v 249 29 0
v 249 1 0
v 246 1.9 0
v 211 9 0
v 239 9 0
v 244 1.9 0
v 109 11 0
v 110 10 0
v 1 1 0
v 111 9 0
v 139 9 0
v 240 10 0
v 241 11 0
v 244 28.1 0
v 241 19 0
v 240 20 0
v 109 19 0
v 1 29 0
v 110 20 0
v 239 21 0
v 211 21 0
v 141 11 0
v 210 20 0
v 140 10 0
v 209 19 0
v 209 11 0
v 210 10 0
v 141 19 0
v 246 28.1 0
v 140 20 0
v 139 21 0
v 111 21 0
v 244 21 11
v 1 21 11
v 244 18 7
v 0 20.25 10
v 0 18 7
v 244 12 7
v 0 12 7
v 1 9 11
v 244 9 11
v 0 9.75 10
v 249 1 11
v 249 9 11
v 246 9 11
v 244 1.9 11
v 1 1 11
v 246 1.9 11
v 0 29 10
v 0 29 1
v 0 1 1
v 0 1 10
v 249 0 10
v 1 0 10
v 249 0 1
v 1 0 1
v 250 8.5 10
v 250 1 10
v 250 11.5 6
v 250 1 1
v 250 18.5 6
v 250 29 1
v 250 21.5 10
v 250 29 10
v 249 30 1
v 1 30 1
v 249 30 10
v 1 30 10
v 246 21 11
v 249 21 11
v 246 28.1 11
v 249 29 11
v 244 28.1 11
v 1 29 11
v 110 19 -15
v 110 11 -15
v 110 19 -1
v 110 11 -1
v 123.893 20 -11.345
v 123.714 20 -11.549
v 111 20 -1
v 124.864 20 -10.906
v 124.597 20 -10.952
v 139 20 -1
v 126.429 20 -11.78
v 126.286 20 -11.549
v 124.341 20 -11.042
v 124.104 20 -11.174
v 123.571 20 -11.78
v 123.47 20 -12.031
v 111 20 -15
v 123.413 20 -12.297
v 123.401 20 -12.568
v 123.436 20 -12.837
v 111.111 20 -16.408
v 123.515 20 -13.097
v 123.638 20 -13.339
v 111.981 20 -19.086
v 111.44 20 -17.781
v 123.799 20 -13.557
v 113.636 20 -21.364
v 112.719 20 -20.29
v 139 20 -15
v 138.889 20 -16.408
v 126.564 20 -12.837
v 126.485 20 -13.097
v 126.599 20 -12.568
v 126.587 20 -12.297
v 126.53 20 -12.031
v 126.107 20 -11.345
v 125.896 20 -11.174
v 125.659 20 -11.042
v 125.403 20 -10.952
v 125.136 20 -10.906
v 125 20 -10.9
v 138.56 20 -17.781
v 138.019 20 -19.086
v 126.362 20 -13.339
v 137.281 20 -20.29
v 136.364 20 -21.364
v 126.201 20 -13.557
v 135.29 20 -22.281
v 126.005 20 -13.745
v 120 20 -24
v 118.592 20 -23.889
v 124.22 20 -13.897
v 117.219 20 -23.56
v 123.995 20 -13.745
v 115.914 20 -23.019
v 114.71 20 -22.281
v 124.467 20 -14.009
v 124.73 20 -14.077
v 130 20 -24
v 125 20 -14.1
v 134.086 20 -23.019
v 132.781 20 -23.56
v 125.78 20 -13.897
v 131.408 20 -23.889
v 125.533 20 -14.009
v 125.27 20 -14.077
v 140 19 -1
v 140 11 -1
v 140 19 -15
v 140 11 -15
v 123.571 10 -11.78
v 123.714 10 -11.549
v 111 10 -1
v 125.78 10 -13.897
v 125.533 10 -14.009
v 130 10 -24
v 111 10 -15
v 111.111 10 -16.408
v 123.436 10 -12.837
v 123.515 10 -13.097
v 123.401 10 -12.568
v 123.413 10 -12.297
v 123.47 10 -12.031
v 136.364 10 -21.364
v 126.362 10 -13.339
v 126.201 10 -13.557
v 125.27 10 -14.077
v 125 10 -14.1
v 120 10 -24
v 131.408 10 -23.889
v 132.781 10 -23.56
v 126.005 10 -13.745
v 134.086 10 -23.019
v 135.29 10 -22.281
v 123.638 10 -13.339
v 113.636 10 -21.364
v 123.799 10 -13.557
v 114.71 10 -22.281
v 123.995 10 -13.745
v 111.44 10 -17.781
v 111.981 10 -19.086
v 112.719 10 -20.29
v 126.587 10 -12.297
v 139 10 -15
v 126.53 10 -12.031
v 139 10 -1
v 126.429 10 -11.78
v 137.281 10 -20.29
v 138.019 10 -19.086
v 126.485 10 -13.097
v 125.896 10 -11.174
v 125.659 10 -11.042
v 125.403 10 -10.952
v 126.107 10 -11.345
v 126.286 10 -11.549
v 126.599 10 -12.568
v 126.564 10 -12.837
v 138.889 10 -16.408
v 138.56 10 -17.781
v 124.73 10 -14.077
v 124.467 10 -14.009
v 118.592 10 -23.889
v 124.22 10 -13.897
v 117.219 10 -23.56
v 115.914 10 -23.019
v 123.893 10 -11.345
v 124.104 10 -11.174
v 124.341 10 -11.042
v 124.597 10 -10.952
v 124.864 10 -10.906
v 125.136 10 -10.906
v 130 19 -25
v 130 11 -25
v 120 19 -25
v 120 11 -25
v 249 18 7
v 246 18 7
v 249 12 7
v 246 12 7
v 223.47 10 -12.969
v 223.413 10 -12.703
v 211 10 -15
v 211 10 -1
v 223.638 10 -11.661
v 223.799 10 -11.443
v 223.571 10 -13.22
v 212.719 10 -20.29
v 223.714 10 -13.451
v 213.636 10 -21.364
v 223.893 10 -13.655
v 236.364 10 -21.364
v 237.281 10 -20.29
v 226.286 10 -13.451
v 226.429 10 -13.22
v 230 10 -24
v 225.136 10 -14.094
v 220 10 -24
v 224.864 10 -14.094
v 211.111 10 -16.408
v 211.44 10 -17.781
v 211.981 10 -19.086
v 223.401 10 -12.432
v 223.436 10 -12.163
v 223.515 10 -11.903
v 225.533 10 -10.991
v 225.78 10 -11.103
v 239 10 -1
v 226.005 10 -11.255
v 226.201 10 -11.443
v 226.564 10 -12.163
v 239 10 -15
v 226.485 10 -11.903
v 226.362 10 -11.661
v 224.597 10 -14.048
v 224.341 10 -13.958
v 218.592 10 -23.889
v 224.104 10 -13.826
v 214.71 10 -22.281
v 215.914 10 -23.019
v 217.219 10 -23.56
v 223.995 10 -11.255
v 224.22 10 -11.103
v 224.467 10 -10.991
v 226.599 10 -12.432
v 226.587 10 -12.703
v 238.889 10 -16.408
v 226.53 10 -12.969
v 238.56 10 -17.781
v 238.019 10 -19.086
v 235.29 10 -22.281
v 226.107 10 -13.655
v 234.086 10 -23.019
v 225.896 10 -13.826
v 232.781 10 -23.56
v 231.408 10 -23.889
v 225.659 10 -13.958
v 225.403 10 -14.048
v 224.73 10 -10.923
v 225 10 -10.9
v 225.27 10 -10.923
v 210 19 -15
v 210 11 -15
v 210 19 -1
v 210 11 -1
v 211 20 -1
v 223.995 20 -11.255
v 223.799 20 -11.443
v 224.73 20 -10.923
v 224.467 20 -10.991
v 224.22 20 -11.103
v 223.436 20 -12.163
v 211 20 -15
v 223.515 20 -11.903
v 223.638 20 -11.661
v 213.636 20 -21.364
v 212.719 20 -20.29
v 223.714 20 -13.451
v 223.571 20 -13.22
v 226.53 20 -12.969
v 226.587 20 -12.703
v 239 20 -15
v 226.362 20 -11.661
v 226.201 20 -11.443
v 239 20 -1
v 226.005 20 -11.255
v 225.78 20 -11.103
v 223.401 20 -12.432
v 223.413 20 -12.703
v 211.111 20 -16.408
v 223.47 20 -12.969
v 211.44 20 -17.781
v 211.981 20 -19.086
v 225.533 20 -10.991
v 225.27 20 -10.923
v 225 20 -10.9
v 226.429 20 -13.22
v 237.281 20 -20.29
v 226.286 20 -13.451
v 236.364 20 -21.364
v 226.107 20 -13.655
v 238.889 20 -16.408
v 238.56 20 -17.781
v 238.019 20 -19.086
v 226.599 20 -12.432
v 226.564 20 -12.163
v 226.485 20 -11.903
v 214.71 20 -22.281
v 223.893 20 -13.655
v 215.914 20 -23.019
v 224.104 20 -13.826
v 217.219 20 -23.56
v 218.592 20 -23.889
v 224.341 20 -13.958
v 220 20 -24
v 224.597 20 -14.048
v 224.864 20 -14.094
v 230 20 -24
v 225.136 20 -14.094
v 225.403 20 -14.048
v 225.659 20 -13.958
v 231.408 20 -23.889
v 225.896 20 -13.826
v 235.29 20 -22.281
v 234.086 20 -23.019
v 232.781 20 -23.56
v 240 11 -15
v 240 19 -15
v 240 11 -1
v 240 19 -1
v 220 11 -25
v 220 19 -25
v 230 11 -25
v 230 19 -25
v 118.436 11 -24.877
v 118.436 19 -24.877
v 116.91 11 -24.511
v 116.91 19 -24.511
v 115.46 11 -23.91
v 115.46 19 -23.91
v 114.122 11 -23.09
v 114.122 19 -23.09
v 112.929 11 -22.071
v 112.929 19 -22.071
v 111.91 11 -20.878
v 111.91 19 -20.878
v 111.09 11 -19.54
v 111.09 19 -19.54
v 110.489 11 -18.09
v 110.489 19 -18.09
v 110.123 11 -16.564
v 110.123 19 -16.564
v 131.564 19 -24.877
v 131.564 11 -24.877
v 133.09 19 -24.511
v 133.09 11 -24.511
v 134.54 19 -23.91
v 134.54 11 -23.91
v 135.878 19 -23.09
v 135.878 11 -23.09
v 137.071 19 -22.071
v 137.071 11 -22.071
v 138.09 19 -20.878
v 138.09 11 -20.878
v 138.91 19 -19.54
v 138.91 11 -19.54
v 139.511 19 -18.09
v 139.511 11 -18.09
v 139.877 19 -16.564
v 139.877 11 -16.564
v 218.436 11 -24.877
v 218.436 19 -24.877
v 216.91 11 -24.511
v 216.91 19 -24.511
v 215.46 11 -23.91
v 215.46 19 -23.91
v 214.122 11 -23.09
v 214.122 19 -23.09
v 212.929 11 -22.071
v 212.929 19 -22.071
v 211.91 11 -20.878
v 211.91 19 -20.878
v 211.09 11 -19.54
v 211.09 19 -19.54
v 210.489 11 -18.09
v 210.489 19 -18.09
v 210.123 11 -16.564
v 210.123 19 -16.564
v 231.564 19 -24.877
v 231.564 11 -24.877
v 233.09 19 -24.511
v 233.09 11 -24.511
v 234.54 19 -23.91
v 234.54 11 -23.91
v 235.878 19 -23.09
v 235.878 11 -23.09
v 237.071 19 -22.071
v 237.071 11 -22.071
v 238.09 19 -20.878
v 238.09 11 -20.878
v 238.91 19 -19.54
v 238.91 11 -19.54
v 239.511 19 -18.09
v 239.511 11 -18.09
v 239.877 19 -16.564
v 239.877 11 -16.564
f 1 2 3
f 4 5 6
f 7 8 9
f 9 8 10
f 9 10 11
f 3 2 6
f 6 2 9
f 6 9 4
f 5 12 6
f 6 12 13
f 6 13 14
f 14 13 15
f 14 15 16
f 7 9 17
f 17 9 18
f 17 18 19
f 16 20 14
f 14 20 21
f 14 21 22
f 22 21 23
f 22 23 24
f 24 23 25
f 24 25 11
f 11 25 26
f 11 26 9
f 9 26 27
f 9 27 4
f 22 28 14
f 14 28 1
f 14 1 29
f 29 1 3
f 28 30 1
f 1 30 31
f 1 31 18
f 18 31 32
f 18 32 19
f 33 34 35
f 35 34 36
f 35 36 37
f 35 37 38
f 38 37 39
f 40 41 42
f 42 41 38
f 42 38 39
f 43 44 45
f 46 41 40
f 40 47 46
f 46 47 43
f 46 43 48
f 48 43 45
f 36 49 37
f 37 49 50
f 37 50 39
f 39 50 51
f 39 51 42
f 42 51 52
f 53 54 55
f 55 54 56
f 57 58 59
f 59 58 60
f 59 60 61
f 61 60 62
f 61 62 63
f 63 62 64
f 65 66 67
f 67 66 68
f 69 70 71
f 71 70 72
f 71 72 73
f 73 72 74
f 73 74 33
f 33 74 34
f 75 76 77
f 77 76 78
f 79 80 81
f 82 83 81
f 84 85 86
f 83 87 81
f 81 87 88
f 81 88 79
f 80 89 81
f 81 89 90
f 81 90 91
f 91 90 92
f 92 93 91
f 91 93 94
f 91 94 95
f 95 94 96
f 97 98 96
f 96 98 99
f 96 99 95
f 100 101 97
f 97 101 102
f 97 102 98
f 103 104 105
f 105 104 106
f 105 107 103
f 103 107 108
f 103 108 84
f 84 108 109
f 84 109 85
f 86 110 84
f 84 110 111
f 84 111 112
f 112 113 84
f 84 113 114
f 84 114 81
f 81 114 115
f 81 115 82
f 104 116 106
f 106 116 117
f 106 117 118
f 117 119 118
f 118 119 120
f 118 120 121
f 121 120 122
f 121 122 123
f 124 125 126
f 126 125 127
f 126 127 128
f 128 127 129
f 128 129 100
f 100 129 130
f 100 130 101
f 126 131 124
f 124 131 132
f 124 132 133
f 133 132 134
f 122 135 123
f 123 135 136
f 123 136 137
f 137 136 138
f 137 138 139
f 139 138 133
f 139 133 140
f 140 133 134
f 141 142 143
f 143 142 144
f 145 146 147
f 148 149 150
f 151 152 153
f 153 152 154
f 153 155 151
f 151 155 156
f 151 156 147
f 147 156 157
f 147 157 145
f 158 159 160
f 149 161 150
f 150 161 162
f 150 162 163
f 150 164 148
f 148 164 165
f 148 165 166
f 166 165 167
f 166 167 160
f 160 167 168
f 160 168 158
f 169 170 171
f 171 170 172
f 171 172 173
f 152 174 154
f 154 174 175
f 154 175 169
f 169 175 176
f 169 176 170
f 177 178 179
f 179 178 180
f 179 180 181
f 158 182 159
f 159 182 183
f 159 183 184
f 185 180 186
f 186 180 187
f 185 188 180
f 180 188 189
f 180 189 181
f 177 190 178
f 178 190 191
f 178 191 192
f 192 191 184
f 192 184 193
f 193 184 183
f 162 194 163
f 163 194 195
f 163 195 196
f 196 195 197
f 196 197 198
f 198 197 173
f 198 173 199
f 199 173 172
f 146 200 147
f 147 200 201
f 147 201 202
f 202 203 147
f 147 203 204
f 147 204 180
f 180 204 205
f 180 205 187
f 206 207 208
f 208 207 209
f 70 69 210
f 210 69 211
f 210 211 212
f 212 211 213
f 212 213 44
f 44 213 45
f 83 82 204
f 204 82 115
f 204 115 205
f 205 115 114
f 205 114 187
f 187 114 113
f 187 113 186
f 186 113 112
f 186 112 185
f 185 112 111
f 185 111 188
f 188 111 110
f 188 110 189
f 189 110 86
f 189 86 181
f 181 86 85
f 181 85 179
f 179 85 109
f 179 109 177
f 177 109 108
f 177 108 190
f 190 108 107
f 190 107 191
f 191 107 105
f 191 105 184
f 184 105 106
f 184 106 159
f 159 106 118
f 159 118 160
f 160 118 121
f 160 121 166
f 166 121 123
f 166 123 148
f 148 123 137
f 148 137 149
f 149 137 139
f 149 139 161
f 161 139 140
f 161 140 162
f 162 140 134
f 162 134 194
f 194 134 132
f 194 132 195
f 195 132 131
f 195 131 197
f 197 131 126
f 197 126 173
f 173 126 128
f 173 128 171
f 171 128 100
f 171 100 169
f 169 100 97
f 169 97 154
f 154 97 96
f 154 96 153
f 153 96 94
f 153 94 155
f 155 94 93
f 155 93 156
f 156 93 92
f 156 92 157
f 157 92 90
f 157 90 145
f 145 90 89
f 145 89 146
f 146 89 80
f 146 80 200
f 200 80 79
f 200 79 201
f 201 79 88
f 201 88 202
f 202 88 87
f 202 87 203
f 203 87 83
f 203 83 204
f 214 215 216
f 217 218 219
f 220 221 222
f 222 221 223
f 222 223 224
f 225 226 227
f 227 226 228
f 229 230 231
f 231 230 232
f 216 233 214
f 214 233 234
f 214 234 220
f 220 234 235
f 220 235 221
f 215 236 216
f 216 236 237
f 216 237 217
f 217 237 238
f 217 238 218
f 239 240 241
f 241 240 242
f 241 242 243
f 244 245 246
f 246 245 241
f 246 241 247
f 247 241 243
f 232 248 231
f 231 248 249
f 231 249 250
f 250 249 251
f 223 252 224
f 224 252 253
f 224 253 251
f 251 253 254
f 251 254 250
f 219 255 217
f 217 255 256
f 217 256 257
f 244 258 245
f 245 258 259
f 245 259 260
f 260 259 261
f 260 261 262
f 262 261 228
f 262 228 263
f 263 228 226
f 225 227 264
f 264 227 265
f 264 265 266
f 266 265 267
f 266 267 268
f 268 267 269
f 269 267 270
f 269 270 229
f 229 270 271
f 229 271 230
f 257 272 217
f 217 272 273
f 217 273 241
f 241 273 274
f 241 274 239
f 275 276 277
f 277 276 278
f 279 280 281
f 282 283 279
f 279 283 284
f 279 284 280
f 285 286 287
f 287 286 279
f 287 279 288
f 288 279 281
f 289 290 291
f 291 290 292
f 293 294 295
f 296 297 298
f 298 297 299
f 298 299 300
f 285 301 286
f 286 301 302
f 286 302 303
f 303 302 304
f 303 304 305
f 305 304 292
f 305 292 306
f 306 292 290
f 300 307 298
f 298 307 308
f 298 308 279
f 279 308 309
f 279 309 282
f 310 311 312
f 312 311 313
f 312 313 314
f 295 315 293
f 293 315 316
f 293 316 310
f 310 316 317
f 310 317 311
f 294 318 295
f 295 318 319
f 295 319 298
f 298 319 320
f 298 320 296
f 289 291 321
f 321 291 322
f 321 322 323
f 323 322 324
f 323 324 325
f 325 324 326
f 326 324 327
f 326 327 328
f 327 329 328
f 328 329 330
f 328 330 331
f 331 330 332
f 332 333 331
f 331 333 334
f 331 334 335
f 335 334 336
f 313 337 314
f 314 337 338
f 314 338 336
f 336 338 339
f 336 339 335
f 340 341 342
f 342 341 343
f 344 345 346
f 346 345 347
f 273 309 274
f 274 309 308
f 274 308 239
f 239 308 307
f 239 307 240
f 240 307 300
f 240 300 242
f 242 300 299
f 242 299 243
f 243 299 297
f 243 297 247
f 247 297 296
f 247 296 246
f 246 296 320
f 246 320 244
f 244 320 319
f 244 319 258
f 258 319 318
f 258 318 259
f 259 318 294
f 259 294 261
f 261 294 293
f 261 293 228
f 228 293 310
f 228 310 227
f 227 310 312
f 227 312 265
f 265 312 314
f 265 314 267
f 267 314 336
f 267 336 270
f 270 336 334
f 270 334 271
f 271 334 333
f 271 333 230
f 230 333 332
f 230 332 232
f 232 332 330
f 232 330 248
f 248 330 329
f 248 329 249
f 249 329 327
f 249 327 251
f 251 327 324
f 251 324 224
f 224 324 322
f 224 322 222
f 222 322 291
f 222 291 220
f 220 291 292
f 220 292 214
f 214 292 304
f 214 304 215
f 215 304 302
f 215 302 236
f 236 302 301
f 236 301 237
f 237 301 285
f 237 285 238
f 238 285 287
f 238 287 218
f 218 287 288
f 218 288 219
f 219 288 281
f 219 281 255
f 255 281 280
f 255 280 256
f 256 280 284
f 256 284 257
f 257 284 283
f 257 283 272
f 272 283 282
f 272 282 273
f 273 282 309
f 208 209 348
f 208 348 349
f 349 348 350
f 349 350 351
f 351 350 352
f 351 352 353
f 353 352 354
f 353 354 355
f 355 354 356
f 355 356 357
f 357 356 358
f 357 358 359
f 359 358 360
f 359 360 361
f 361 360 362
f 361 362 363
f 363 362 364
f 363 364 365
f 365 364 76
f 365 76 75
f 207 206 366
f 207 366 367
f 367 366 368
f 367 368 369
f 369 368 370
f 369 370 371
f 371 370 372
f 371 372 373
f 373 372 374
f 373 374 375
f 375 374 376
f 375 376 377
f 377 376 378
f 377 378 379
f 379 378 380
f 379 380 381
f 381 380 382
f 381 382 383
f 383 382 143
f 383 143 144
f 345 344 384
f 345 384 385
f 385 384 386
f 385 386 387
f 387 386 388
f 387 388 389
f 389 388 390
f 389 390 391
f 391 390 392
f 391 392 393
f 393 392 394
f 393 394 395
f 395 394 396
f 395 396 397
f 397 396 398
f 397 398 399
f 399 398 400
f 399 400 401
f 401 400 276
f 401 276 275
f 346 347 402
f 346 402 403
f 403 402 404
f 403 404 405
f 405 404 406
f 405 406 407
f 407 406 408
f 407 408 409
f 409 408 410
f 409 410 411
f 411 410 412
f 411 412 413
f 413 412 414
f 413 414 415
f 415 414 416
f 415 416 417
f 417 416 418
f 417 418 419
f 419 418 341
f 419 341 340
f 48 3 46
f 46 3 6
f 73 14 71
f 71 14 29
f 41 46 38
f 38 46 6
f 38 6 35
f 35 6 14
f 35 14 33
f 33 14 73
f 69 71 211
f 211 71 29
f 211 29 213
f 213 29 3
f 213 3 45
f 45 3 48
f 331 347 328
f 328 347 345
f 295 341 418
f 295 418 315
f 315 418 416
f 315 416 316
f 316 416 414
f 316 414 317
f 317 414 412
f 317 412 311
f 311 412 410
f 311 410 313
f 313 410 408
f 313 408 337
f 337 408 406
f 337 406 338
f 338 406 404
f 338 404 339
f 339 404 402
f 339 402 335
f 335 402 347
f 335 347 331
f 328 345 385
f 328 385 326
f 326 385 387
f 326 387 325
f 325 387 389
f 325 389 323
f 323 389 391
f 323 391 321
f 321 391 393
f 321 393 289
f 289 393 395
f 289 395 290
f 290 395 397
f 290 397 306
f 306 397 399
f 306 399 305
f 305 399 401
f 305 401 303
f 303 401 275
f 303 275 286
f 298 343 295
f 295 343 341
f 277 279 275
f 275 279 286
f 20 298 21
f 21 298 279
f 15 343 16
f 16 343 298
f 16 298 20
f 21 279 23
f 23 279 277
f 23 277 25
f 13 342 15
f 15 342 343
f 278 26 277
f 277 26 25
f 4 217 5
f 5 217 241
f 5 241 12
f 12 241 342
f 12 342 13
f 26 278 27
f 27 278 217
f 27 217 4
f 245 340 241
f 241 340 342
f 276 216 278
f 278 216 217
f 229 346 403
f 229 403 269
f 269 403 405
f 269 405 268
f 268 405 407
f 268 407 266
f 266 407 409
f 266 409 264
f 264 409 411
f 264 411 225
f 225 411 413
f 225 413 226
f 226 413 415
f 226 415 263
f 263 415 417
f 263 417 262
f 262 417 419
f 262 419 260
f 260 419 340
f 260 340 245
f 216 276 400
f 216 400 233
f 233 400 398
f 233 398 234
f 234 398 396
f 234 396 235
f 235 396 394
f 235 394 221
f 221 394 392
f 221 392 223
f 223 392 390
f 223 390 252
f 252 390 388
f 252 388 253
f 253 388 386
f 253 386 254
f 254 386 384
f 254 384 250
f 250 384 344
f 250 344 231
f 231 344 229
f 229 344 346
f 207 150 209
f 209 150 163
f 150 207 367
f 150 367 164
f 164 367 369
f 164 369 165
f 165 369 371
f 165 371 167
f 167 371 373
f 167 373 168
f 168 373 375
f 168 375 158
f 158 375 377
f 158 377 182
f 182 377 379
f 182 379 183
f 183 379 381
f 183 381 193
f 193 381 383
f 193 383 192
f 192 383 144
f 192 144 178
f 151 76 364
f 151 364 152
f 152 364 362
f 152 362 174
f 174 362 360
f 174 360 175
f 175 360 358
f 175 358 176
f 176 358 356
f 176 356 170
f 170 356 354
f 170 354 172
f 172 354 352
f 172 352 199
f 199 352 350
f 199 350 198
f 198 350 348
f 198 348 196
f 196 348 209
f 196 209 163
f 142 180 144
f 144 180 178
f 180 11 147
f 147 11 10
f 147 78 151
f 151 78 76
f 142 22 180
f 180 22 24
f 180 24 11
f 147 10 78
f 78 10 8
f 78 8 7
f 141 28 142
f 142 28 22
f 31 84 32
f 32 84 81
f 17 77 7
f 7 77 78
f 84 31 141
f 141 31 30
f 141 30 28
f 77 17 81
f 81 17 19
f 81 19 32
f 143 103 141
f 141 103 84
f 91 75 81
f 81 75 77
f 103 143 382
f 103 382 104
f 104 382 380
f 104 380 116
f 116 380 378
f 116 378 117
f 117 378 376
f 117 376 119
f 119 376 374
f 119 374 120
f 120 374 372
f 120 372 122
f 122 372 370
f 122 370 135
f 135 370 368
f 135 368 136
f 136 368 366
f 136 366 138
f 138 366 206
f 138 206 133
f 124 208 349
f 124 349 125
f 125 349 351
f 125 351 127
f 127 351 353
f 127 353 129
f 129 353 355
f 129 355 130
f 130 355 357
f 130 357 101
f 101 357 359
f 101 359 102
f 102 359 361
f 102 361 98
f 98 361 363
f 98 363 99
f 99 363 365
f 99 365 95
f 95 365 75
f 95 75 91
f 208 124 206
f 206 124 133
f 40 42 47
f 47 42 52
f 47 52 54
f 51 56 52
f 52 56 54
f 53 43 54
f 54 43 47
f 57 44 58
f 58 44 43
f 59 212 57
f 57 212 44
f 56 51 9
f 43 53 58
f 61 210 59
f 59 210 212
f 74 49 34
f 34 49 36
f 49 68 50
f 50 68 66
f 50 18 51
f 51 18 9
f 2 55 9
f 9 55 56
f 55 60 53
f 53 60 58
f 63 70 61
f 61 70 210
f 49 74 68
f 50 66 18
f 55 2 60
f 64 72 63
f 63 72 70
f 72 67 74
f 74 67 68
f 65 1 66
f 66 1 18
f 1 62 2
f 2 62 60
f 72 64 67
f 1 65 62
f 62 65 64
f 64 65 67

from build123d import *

# Parameters (mm, degrees)
SKETCH_1_W          = 250
SKETCH_1_H          = 30
EXTRUDE_1_DEPTH     = 11
SKETCH_4_W          = 15
SKETCH_4_H          = 5
EXTRUDE_2_DEPTH     = 25
CUT_EXTRUDE_2_DEPTH = 251
CUT_EXTRUDE_3_DEPTH = 21
SKETCH_11_W         = 30
SKETCH_11_H         = 10
EXTRUDE_4_DEPTH     = 25
SKETCH_12_R         = 1.6
CUT_EXTRUDE_5_DEPTH = 21
FILLET_1_R          = 10
SKETCH_13_W         = 2
SKETCH_13_H         = 26.2
CUT_EXTRUDE_6_DEPTH = 37
CHAMFER_1_SIZE      = 1


with BuildPart() as part:
    # 草圖1 → 填料-伸長1 (new body)
    with BuildSketch(Plane.XY):
        with Locations((125, 15)):
            Rectangle(SKETCH_1_W, SKETCH_1_H)
    extrude(amount=EXTRUDE_1_DEPTH)

    # 草圖4 → 填料-伸長2 (add)
    with BuildSketch(Plane(origin=(0, 0, 0), x_dir=(-1, 0, 0), z_dir=(0, 0, -1))):
        with Locations((-132.5, 12.5)):
            Rectangle(SKETCH_4_W, SKETCH_4_H)
        with Locations((-132.5, 17.5)):
            Rectangle(SKETCH_4_W, SKETCH_4_H)
        with Locations((-117.5, 17.5)):
            Rectangle(SKETCH_4_W, SKETCH_4_H)
        with Locations((-117.5, 12.5)):
            Rectangle(SKETCH_4_W, SKETCH_4_H)
    extrude(amount=EXTRUDE_2_DEPTH)

    # 草圖5 → 除料-伸長2 (cut, through all)
    with BuildSketch(Plane(origin=(250, 0, 0), x_dir=(0, 0, -1), z_dir=(1, 0, 0))):
        Polygon((-11, 15), (-7, 15), (-7, 18), (-11, 21), align=None)
        Polygon((-7, 12), (-7, 15), (-11, 15), (-11, 9), align=None)
    extrude(amount=-CUT_EXTRUDE_2_DEPTH, mode=Mode.SUBTRACT)

    # 草圖6 → 除料-伸長3 (cut, through all)
    with BuildSketch(Plane.XZ.offset(-10)):
        with BuildLine():
            ThreePointArc((126.6, -12.5), (126.13137085, -11.36862915), (125, -10.9))
            Line((125, -10.9), (125, -12.5))
            Line((125, -12.5), (126.6, -12.5))
        make_face()
        with BuildLine():
            Line((125, -12.5), (125, -10.9))
            ThreePointArc((125, -10.9), (123.86862915, -11.36862915), (123.4, -12.5))
            Line((123.4, -12.5), (125, -12.5))
        make_face()
        with BuildLine():
            Line((126.6, -12.5), (125, -12.5))
            Line((125, -12.5), (125, -14.1))
            ThreePointArc((125, -14.1), (126.13137085, -13.63137085), (126.6, -12.5))
        make_face()
        with BuildLine():
            Line((125, -14.1), (125, -12.5))
            Line((125, -12.5), (123.4, -12.5))
            ThreePointArc((123.4, -12.5), (123.86862915, -13.63137085), (125, -14.1))
        make_face()
    extrude(amount=-CUT_EXTRUDE_3_DEPTH, mode=Mode.SUBTRACT)

    # 草圖11 → 填料-伸長4 (add)
    with BuildSketch(Plane(origin=(0, 0, 0), x_dir=(-1, 0, 0), z_dir=(0, 0, -1))):
        with Locations((-225, 15)):
            Rectangle(SKETCH_11_W, SKETCH_11_H)
    extrude(amount=EXTRUDE_4_DEPTH)

    # 草圖12 → 除料-伸長5 (cut, through all)
    with BuildSketch(Plane(origin=(0, 20, 0), x_dir=(1, 0, 0), z_dir=(0, 1, 0))):
        with Locations((225, 12.5)):
            Circle(SKETCH_12_R)
    extrude(amount=-CUT_EXTRUDE_5_DEPTH, mode=Mode.SUBTRACT)

    # 圓角1
    fillet_1_edges = [part.edges().sort_by_distance(p)[0] for p in [
        (110, 15, -25),
        (140, 15, -25),
        (240, 15, -25),
        (210, 15, -25),
    ]]
    fillet(fillet_1_edges, radius=FILLET_1_R)

    # 草圖13 → 除料-伸長6 (cut, through all)
    with BuildSketch(Plane.XY.offset(11)):
        with Locations((245, 15)):
            Rectangle(SKETCH_13_W, SKETCH_13_H)
    extrude(amount=-CUT_EXTRUDE_6_DEPTH, mode=Mode.SUBTRACT)

    # 導角1
    chamfer_1_edges = [part.edges().sort_by_distance(p)[0] for p in [
        (250, 4.5, 11),
        (125, 30, 11),
        (110, 15, 0),
        (140, 15, 0),
        (125, 10, 0),
        (125, 20, 0),
        (0, 4.5, 11),
        (250, 25.5, 11),
        (250, 10.5, 9),
        (250, 15, 7),
        (250, 19.5, 9),
        (0, 25.5, 11),
        (125, 30, 0),
        (250, 15, 0),
        (125, 0, 0),
        (225, 10, 0),
        (210, 15, 0),
        (0, 15, 0),
        (240, 15, 0),
        (225, 20, 0),
        (125, 0, 11),
        (125, 20, -25),
        (125, 10, -25),
        (0, 30, 5.5),
        (250, 30, 5.5),
        (140, 20, -7.5),
        (110, 20, -7.5),
        (137.071067812, 20, -22.071067812),
        (250, 0, 5.5),
        (112.928932188, 20, -22.071067812),
        (110, 10, -7.5),
        (0, 0, 5.5),
        (140, 10, -7.5),
        (137.071067812, 10, -22.071067812),
        (112.928932188, 10, -22.071067812),
        (225, 10, -25),
        (225, 20, -25),
        (240, 20, -7.5),
        (210, 20, -7.5),
        (237.071067812, 20, -22.071067812),
        (212.928932188, 20, -22.071067812),
        (210, 10, -7.5),
        (240, 10, -7.5),
        (237.071067812, 10, -22.071067812),
        (212.928932188, 10, -22.071067812),
    ]]
    chamfer(chamfer_1_edges, length=CHAMFER_1_SIZE)


solid = part.part
